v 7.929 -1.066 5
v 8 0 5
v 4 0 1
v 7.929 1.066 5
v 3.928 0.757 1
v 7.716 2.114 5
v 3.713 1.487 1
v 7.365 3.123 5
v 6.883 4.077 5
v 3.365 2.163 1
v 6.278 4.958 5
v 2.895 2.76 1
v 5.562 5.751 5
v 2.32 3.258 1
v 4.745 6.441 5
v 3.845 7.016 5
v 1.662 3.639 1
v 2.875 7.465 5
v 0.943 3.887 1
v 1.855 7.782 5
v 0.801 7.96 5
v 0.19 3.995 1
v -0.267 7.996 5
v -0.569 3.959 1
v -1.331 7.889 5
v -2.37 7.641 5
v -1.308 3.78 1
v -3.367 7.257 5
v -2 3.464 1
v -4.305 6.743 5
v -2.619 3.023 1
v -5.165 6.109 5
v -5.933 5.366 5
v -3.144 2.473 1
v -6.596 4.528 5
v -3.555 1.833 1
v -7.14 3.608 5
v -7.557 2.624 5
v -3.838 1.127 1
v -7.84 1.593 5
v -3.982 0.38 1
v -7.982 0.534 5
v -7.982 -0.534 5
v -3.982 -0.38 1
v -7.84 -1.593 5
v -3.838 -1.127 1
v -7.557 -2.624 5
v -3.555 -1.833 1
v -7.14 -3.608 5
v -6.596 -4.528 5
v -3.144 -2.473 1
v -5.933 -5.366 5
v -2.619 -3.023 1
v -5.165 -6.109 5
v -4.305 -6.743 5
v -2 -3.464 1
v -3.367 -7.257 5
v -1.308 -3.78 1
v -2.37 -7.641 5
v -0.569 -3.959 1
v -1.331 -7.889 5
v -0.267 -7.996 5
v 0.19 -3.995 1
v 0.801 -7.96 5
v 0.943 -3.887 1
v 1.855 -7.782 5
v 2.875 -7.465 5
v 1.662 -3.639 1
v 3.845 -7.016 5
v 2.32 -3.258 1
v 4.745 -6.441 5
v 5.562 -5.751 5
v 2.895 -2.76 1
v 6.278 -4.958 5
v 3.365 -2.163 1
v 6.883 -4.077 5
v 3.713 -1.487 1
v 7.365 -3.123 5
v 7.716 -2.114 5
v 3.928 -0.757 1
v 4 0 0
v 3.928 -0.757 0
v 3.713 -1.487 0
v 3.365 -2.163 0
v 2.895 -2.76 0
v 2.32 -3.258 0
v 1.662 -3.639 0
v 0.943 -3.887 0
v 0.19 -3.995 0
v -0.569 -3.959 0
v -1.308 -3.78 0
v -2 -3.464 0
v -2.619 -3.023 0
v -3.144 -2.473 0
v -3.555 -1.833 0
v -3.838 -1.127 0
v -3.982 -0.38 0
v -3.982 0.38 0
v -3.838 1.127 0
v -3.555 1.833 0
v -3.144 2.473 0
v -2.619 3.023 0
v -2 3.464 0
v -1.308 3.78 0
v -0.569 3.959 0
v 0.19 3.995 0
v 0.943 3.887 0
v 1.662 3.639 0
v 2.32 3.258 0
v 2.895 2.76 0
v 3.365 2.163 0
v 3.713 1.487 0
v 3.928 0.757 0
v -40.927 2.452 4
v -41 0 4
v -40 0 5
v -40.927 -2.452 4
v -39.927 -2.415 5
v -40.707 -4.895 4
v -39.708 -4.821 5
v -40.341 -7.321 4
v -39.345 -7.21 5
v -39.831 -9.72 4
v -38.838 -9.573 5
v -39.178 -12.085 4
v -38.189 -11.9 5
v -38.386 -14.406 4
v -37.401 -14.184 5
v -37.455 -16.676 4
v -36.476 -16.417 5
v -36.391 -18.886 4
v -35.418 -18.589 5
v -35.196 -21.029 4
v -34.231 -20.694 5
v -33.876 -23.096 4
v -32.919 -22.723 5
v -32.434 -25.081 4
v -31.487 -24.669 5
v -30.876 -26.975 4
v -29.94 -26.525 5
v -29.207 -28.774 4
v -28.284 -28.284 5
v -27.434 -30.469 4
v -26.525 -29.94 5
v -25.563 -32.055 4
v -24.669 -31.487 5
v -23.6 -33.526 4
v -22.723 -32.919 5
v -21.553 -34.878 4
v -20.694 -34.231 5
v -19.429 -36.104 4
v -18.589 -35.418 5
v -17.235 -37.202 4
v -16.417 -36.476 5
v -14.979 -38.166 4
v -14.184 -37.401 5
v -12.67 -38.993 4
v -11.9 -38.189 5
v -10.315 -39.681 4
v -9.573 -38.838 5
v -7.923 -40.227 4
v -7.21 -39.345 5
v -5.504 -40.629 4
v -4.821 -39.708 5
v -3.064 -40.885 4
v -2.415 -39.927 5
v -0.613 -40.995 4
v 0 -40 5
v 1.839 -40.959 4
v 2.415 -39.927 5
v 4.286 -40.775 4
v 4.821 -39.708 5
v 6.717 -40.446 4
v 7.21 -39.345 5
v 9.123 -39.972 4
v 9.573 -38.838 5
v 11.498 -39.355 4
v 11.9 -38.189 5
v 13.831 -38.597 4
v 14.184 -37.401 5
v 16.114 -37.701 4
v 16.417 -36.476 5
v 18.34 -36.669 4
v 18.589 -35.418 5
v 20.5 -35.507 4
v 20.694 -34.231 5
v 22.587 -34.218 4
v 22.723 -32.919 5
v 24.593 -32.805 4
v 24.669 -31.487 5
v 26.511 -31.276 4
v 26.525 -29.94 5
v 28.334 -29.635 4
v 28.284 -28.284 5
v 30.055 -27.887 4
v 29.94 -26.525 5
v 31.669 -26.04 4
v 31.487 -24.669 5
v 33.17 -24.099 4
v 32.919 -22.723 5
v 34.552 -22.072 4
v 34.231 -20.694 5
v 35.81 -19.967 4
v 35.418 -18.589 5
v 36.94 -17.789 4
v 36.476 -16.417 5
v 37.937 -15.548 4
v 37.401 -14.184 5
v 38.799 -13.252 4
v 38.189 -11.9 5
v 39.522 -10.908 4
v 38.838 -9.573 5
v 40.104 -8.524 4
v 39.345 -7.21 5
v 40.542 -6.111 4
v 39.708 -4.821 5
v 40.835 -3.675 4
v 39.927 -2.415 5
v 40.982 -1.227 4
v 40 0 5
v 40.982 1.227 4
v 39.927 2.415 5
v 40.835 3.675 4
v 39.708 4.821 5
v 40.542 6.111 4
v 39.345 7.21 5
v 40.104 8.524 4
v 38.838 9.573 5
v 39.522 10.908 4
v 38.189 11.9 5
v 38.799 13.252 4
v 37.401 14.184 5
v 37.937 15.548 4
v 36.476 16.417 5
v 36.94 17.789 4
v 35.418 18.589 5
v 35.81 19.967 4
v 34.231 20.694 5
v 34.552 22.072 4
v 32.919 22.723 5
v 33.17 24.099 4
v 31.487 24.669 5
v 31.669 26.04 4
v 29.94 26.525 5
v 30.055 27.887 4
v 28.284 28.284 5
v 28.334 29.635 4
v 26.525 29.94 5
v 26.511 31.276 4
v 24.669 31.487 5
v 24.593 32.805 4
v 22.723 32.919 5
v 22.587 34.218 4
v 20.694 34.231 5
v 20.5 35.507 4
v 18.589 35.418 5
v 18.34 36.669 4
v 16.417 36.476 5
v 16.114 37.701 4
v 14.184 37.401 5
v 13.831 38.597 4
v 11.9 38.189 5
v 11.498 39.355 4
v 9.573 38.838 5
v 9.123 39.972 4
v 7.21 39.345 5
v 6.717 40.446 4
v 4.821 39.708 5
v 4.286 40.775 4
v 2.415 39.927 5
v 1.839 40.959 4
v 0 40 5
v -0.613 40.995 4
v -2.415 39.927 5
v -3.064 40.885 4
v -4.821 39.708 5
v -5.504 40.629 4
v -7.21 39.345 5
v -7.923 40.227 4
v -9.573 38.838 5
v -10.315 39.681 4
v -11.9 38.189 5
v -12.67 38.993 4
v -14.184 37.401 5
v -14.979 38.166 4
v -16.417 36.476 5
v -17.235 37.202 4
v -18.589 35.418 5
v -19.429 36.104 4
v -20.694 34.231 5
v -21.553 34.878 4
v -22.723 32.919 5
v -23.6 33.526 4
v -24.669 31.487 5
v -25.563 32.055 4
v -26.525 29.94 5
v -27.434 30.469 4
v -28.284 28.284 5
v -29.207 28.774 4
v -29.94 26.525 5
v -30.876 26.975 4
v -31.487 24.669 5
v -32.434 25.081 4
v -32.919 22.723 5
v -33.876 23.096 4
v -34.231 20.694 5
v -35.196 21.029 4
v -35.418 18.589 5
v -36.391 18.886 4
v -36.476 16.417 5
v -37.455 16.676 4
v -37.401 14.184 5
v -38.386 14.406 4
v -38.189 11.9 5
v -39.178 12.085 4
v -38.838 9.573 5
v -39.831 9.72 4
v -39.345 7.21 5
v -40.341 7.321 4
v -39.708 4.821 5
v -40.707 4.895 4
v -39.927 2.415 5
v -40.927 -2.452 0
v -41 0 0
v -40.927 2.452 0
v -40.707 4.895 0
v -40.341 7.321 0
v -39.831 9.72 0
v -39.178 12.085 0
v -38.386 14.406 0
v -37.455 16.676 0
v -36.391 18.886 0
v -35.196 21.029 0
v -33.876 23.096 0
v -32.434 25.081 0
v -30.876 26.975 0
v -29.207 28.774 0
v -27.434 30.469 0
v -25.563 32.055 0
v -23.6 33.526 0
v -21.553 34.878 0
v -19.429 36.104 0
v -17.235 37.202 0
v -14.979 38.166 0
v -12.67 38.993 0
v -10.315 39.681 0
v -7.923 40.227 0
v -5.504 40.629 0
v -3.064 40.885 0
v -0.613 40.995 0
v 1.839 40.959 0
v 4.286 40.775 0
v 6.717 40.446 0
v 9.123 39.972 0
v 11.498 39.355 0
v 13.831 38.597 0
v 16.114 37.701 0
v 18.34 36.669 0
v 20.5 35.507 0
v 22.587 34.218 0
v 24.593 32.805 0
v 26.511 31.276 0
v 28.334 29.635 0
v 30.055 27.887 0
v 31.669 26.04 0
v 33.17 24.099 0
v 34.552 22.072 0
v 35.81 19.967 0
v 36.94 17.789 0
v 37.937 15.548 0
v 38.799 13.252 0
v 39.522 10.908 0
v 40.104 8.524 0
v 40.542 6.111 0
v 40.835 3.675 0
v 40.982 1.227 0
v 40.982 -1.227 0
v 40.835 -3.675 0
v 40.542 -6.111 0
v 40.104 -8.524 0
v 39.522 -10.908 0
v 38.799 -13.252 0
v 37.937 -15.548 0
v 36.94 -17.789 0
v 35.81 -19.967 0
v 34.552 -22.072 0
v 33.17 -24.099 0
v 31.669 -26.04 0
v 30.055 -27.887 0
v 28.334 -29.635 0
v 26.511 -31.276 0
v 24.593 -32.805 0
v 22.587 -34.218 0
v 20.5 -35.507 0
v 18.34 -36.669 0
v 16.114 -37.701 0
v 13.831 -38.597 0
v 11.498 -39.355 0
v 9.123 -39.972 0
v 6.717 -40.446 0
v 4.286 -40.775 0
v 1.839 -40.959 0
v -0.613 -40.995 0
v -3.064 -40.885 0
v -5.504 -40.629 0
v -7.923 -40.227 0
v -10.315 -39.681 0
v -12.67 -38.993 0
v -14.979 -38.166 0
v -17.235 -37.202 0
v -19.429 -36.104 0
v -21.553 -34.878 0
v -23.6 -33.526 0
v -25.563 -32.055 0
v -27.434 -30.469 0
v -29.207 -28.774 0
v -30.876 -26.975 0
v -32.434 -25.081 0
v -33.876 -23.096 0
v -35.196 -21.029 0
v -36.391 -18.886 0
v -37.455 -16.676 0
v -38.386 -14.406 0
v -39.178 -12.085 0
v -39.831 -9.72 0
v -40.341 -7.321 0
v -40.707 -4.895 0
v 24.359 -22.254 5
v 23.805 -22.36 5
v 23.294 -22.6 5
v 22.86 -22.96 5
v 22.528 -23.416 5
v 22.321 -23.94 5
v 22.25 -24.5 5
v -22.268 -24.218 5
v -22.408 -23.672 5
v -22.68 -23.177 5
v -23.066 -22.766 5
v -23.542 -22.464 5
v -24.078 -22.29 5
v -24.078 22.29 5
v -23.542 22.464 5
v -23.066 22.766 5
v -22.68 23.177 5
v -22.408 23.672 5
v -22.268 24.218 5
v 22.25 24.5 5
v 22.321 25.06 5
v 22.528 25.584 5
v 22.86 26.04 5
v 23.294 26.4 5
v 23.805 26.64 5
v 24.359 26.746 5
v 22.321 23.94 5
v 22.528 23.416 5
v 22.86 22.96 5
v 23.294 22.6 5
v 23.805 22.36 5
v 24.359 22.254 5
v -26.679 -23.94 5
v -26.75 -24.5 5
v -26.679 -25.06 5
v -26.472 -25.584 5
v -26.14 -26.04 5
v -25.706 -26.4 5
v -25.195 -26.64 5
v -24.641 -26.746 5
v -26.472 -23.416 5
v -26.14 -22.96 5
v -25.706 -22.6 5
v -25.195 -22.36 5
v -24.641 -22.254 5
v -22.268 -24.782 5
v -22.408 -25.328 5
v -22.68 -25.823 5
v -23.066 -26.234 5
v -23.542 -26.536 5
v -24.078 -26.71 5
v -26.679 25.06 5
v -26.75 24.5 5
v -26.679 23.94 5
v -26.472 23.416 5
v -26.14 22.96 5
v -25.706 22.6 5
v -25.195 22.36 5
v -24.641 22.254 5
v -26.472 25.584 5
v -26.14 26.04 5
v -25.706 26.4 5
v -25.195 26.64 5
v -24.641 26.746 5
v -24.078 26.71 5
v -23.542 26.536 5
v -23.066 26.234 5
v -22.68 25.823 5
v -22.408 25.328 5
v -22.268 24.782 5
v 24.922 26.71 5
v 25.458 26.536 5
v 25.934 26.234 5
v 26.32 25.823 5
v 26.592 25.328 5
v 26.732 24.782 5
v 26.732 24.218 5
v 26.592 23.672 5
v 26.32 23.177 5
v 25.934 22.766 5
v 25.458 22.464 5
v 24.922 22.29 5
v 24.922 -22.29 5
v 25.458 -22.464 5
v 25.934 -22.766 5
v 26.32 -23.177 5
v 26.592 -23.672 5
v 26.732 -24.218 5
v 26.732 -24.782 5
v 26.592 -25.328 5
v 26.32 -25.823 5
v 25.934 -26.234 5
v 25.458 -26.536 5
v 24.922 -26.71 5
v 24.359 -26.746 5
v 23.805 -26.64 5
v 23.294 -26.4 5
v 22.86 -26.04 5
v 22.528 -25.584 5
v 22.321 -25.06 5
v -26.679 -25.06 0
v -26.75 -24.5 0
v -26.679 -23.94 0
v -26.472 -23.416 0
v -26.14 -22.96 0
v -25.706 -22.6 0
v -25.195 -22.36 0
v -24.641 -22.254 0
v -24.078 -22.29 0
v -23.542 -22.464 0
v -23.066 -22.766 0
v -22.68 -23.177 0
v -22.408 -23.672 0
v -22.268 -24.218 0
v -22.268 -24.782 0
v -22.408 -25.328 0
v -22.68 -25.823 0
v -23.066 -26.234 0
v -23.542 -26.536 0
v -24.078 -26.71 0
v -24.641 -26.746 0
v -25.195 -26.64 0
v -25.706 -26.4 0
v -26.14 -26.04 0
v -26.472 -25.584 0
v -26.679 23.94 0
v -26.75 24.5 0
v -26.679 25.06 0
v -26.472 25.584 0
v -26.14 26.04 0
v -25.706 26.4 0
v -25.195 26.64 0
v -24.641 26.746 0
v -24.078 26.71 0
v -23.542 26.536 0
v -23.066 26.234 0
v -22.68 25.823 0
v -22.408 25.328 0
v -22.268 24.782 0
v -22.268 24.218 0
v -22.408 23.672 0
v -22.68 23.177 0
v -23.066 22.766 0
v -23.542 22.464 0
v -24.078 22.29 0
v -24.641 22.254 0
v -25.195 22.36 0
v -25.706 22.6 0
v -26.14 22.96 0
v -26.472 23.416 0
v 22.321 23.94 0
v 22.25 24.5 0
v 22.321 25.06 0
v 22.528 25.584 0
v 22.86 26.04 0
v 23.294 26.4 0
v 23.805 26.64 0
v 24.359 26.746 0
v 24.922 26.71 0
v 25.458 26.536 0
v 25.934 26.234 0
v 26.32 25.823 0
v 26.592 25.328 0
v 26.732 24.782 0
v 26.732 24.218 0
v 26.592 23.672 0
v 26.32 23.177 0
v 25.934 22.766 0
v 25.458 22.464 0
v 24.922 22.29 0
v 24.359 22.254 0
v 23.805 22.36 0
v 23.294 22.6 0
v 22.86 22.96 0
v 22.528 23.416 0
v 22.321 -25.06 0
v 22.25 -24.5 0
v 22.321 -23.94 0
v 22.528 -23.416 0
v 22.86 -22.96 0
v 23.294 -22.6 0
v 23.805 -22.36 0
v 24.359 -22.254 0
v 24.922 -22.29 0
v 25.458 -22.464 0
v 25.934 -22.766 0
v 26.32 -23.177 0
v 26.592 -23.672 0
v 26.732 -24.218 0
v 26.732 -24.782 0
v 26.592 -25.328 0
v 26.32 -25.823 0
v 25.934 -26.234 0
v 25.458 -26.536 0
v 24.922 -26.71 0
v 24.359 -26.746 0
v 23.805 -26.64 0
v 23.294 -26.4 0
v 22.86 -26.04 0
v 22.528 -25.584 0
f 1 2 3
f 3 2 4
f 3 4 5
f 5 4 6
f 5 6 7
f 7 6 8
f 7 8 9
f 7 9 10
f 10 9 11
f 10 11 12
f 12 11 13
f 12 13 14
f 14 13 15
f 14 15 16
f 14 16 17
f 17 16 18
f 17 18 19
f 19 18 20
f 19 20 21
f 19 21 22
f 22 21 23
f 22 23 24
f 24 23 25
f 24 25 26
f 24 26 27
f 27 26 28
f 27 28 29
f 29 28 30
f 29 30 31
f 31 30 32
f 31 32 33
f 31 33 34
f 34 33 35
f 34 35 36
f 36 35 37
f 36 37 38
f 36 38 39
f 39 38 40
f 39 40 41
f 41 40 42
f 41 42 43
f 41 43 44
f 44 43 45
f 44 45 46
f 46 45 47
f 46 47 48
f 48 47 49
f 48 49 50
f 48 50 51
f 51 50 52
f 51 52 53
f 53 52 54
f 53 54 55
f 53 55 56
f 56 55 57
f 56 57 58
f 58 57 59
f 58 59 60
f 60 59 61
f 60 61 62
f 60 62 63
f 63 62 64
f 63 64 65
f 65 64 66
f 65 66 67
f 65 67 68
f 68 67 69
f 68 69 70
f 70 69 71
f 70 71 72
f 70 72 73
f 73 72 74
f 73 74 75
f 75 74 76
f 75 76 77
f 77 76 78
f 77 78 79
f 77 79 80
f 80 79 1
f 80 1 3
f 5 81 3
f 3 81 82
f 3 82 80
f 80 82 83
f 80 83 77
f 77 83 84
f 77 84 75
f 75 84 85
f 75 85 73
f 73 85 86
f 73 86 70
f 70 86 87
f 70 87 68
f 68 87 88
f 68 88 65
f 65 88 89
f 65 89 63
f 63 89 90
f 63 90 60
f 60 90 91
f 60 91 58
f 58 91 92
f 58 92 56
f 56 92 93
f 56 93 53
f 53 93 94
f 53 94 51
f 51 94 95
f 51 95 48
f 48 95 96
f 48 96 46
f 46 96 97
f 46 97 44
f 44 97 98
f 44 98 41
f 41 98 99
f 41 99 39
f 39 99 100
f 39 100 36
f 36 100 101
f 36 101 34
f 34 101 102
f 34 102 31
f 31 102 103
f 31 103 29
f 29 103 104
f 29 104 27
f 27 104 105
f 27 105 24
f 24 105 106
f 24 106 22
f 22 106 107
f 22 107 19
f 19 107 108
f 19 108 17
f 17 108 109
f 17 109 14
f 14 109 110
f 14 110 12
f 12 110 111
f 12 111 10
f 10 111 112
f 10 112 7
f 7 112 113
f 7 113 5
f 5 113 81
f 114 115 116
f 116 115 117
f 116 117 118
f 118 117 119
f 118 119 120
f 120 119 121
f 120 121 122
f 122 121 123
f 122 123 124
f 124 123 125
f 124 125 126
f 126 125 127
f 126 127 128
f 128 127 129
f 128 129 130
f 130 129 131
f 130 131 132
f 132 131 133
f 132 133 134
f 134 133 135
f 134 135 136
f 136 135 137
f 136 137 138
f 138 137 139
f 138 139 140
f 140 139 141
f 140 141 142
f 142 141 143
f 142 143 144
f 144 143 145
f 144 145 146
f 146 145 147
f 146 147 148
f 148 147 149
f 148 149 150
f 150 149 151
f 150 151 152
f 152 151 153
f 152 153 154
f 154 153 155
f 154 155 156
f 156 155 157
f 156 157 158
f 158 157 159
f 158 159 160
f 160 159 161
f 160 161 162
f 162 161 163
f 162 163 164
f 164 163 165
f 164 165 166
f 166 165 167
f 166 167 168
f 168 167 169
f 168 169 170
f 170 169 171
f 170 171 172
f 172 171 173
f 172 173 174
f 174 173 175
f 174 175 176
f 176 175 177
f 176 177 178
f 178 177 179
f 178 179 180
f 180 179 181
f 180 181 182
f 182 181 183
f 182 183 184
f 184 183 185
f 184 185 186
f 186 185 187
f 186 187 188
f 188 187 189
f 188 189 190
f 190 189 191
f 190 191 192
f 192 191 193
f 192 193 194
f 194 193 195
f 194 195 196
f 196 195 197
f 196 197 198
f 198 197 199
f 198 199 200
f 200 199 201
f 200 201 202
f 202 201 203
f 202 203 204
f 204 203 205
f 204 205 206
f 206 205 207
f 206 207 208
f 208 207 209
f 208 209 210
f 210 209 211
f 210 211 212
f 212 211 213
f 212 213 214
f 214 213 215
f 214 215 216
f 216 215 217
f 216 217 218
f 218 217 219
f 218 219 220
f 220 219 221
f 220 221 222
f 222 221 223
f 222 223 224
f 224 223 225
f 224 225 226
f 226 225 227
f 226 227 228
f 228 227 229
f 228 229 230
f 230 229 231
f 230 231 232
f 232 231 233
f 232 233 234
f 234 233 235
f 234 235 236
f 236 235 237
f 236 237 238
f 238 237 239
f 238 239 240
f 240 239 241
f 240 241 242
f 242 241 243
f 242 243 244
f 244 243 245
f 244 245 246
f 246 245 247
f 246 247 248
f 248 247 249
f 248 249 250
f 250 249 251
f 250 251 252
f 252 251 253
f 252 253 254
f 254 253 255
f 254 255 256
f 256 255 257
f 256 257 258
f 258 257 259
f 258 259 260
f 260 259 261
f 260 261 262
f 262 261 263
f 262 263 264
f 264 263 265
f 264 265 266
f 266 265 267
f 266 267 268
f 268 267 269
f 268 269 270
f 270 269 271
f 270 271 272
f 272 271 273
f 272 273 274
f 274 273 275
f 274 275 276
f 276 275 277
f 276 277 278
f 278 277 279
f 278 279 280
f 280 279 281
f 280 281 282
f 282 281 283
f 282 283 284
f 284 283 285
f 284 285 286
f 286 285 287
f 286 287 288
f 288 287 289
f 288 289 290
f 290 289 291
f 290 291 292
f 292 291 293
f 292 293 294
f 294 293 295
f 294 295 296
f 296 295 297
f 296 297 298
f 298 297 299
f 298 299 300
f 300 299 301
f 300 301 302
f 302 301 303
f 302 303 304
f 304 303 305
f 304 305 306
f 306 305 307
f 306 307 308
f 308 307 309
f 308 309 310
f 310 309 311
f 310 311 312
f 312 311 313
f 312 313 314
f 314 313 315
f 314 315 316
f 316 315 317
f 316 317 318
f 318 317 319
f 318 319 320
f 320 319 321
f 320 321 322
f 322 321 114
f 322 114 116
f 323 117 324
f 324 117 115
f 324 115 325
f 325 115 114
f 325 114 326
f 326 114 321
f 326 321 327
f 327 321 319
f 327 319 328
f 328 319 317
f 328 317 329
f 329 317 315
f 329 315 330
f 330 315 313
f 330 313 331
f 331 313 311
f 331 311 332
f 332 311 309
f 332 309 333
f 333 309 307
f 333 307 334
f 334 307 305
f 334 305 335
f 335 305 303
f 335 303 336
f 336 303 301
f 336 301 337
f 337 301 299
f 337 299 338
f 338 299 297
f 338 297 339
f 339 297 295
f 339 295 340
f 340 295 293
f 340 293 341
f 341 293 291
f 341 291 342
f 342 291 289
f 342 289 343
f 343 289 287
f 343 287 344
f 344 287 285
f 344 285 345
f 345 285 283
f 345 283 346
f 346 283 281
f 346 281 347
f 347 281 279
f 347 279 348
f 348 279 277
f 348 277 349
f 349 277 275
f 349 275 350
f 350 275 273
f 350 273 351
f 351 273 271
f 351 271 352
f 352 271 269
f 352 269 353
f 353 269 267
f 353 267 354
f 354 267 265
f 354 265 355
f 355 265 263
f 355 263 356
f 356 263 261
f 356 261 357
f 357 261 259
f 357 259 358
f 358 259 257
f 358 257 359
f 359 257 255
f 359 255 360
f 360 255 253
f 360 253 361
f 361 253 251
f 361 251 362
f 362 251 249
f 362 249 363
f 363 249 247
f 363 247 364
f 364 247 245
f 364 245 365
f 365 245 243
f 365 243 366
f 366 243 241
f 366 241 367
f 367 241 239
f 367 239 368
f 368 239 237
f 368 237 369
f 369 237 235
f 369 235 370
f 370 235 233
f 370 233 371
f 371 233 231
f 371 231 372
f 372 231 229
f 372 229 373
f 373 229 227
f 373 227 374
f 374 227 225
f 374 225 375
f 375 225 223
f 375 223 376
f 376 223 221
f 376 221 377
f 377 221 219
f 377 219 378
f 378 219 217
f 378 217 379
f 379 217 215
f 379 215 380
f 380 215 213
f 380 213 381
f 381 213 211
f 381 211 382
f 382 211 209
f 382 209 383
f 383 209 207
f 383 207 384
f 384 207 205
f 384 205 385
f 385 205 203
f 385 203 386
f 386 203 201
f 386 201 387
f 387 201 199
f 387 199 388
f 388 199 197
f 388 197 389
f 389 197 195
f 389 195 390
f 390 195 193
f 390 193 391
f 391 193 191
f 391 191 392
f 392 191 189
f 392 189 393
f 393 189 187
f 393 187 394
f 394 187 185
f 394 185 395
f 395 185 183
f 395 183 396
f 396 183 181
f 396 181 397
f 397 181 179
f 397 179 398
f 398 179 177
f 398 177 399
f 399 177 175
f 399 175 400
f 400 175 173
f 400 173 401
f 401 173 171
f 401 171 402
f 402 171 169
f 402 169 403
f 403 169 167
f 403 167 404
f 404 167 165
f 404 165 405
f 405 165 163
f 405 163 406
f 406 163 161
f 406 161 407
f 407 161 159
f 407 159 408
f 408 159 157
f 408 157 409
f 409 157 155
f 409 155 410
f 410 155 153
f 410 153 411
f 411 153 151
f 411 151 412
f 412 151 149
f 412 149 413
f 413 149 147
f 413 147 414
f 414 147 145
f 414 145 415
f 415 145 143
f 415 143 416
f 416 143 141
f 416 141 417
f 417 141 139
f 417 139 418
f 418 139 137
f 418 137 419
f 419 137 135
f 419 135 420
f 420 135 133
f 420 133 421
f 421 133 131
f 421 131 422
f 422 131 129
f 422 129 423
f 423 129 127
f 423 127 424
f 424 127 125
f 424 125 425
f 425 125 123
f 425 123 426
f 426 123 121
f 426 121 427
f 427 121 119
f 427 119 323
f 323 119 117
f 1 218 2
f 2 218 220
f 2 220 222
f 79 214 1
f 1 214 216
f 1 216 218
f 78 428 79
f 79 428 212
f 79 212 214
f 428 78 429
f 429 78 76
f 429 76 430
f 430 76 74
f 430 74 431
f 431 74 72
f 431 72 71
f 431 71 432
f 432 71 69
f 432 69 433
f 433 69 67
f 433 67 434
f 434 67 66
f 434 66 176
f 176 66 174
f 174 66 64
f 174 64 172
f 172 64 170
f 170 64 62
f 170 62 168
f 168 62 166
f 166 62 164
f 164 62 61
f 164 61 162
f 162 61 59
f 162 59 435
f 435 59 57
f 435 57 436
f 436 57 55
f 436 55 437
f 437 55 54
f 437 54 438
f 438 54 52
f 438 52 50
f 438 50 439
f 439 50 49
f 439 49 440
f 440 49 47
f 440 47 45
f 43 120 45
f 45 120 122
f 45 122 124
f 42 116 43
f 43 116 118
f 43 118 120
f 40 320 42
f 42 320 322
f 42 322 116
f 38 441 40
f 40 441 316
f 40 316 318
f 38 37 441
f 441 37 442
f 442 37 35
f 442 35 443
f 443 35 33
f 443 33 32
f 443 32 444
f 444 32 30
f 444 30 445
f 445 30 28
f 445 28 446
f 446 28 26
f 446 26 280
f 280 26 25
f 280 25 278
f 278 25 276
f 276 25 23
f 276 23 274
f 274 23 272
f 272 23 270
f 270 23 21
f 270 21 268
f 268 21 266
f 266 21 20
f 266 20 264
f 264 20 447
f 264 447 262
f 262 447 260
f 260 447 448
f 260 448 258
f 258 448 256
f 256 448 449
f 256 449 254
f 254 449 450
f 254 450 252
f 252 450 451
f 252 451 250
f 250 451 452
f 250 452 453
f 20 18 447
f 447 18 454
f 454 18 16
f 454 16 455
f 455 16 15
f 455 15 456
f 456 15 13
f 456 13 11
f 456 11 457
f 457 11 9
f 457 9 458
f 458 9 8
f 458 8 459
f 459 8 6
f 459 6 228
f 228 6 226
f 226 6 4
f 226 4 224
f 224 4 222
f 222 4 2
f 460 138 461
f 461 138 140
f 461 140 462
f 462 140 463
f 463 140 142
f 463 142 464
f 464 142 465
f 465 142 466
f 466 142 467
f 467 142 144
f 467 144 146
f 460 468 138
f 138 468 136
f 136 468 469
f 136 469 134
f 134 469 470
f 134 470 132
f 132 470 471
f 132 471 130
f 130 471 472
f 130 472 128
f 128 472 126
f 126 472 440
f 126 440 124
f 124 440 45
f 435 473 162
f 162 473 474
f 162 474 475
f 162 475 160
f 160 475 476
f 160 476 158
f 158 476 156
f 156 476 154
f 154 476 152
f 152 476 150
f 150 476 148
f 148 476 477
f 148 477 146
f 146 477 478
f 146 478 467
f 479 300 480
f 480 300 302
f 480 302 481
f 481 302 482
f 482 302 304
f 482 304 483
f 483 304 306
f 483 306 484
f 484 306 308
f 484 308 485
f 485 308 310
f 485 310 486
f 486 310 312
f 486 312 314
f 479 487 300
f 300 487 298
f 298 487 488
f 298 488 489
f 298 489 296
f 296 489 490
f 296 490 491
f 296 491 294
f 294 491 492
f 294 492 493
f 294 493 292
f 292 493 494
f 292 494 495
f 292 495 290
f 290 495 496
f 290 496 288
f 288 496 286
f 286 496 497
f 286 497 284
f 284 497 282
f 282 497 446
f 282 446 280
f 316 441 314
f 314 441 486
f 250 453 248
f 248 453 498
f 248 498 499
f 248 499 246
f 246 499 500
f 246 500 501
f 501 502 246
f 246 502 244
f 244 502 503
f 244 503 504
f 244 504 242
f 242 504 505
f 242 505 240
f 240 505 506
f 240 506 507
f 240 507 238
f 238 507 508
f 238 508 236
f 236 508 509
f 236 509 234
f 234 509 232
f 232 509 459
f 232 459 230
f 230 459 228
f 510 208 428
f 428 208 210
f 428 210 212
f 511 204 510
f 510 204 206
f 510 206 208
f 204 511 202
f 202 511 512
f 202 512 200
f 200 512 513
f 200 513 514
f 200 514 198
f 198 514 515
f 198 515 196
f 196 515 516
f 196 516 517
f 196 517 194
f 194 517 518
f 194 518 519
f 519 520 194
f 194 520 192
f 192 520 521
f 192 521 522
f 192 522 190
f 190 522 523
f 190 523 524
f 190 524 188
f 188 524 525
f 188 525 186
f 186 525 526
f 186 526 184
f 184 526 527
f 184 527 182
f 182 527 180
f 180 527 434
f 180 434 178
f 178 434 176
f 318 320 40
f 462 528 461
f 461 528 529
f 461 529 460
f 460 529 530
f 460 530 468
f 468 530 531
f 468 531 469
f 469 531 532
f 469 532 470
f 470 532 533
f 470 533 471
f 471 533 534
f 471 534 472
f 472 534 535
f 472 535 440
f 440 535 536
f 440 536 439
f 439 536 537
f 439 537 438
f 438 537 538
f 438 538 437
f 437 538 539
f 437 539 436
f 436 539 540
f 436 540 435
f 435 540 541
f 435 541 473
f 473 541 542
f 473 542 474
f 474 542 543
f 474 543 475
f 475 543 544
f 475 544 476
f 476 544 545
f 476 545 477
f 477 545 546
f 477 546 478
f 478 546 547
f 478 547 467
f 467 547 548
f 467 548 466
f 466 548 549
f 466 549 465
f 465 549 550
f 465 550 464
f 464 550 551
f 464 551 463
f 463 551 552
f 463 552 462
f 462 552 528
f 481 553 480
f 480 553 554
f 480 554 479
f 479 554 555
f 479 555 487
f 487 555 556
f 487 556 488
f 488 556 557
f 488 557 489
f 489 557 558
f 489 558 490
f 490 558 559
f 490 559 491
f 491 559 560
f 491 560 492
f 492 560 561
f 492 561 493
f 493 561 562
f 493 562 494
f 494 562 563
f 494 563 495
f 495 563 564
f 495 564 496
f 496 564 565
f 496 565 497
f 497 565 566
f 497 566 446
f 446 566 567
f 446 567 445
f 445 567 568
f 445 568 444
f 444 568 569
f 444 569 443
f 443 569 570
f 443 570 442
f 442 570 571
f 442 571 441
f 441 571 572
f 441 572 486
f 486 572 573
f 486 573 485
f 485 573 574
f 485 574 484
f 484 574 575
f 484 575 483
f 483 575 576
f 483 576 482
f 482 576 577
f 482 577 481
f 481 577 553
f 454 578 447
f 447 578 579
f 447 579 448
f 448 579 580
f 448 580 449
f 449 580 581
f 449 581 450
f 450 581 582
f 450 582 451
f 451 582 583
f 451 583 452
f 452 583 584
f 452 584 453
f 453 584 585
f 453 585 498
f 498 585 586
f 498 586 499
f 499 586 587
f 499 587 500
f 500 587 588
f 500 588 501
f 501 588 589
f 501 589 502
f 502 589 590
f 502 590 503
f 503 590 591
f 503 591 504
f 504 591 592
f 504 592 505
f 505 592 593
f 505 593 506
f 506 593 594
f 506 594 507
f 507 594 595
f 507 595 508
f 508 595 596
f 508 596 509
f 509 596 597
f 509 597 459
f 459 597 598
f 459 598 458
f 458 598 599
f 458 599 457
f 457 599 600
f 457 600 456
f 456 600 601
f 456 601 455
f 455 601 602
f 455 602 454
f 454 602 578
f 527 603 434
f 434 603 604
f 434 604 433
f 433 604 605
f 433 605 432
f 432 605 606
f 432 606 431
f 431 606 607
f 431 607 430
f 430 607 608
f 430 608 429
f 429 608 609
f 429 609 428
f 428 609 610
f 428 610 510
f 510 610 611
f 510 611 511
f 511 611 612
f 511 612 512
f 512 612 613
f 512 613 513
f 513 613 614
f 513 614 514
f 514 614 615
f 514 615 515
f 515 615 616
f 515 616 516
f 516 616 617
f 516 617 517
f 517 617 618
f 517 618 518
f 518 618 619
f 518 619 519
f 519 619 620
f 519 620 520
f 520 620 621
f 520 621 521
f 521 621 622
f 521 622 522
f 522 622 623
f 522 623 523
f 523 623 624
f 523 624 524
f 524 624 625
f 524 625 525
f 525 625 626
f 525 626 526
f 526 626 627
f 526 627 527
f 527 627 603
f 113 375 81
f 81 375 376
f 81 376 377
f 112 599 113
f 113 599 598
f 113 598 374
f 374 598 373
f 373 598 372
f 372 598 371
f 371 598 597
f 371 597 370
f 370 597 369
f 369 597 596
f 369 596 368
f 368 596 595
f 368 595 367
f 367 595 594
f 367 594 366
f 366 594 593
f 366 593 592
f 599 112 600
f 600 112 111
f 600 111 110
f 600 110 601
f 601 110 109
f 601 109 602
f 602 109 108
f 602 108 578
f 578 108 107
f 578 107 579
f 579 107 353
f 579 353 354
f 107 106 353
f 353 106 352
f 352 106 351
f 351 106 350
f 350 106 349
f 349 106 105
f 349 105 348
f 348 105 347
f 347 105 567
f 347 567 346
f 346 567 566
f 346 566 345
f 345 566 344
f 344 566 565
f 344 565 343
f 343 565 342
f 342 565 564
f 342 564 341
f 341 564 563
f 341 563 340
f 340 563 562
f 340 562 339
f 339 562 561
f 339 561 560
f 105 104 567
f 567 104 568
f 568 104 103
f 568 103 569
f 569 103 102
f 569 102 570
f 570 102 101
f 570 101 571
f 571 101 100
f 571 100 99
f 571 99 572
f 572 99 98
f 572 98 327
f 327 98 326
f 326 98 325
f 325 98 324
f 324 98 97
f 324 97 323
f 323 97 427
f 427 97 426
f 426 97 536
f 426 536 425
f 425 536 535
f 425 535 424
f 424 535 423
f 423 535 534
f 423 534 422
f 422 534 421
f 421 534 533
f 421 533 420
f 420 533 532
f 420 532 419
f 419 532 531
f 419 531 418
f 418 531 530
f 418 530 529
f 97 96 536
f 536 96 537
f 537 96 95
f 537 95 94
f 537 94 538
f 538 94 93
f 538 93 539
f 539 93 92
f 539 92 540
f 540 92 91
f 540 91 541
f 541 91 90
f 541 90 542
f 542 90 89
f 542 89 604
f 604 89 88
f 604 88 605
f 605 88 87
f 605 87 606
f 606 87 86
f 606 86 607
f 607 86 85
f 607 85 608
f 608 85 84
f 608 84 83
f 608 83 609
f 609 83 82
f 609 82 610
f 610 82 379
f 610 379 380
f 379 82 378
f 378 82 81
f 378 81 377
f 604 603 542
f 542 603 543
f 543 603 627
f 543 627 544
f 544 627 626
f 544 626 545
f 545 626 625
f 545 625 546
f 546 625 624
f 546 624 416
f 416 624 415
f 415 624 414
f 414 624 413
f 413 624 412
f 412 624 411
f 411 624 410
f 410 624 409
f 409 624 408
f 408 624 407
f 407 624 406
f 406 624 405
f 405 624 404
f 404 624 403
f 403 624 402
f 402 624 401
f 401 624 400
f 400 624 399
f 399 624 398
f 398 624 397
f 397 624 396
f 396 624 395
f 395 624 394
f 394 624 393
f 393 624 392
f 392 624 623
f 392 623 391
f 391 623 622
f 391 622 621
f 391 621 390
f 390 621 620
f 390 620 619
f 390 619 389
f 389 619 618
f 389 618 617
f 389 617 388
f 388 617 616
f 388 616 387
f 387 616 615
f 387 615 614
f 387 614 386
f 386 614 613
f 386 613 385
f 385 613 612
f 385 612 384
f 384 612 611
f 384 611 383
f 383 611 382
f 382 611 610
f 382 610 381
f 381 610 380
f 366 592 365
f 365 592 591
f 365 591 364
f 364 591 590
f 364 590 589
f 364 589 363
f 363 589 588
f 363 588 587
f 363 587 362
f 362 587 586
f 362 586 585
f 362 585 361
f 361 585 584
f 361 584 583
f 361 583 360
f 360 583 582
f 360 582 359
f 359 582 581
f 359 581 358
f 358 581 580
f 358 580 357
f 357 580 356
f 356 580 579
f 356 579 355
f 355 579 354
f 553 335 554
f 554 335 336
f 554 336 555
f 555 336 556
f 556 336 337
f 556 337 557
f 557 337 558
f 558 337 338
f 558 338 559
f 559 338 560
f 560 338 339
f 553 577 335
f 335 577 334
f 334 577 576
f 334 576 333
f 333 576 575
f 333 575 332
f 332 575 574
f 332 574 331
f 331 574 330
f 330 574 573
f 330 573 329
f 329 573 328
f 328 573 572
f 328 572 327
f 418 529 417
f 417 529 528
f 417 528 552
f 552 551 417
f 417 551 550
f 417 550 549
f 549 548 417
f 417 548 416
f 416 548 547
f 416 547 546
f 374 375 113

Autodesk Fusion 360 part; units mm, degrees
sketch "Skizze1" plane through (0, 0, 0) normal (0, 0, 1) x (1, 0, 0)
  circle A0 centre (0, 0) radius 41
  circle A1 centre (24.5, 24.5) radius 2.25
  circle A2 centre (24.5, -24.5) radius 2.25
  circle A3 centre (-24.5, -24.5) radius 2.25
  circle A4 centre (-24.5, 24.5) radius 2.25
  dimension "d1" = 82
  dimension "d4" = 49
  dimension "d5" = 49
  dimension "d6" = 4.5
  dimension "d7" = 4.5
  dimension "d8" = 4.5
  dimension "d9" = 4.5
extrude "Extrusion1" add sketch "Skizze1" along normal blind 5
chamfer "Fase1" distance 1 angle 45 1 edges at (-38.2254, -14.8262, 5)
sketch "Skizze2" plane through (0, 0, 5) normal (0, 0, 1) x (-1, 0, 0)
  circle A0 centre (-24.5, -24.5) radius 2.25
  circle A1 centre (24.5, 24.5) radius 2.25
  circle A2 centre (-24.5, 24.5) radius 2.25
  circle A3 centre (24.5, -24.5) radius 2.25
  circle A4 centre (0, 0) radius 40
hole "Bohrung1" at (0, 0, 5) direction (0, 0, -1) diameter 8 depth 5 tip angle 118 countersink diameter 16 countersink angle 90
